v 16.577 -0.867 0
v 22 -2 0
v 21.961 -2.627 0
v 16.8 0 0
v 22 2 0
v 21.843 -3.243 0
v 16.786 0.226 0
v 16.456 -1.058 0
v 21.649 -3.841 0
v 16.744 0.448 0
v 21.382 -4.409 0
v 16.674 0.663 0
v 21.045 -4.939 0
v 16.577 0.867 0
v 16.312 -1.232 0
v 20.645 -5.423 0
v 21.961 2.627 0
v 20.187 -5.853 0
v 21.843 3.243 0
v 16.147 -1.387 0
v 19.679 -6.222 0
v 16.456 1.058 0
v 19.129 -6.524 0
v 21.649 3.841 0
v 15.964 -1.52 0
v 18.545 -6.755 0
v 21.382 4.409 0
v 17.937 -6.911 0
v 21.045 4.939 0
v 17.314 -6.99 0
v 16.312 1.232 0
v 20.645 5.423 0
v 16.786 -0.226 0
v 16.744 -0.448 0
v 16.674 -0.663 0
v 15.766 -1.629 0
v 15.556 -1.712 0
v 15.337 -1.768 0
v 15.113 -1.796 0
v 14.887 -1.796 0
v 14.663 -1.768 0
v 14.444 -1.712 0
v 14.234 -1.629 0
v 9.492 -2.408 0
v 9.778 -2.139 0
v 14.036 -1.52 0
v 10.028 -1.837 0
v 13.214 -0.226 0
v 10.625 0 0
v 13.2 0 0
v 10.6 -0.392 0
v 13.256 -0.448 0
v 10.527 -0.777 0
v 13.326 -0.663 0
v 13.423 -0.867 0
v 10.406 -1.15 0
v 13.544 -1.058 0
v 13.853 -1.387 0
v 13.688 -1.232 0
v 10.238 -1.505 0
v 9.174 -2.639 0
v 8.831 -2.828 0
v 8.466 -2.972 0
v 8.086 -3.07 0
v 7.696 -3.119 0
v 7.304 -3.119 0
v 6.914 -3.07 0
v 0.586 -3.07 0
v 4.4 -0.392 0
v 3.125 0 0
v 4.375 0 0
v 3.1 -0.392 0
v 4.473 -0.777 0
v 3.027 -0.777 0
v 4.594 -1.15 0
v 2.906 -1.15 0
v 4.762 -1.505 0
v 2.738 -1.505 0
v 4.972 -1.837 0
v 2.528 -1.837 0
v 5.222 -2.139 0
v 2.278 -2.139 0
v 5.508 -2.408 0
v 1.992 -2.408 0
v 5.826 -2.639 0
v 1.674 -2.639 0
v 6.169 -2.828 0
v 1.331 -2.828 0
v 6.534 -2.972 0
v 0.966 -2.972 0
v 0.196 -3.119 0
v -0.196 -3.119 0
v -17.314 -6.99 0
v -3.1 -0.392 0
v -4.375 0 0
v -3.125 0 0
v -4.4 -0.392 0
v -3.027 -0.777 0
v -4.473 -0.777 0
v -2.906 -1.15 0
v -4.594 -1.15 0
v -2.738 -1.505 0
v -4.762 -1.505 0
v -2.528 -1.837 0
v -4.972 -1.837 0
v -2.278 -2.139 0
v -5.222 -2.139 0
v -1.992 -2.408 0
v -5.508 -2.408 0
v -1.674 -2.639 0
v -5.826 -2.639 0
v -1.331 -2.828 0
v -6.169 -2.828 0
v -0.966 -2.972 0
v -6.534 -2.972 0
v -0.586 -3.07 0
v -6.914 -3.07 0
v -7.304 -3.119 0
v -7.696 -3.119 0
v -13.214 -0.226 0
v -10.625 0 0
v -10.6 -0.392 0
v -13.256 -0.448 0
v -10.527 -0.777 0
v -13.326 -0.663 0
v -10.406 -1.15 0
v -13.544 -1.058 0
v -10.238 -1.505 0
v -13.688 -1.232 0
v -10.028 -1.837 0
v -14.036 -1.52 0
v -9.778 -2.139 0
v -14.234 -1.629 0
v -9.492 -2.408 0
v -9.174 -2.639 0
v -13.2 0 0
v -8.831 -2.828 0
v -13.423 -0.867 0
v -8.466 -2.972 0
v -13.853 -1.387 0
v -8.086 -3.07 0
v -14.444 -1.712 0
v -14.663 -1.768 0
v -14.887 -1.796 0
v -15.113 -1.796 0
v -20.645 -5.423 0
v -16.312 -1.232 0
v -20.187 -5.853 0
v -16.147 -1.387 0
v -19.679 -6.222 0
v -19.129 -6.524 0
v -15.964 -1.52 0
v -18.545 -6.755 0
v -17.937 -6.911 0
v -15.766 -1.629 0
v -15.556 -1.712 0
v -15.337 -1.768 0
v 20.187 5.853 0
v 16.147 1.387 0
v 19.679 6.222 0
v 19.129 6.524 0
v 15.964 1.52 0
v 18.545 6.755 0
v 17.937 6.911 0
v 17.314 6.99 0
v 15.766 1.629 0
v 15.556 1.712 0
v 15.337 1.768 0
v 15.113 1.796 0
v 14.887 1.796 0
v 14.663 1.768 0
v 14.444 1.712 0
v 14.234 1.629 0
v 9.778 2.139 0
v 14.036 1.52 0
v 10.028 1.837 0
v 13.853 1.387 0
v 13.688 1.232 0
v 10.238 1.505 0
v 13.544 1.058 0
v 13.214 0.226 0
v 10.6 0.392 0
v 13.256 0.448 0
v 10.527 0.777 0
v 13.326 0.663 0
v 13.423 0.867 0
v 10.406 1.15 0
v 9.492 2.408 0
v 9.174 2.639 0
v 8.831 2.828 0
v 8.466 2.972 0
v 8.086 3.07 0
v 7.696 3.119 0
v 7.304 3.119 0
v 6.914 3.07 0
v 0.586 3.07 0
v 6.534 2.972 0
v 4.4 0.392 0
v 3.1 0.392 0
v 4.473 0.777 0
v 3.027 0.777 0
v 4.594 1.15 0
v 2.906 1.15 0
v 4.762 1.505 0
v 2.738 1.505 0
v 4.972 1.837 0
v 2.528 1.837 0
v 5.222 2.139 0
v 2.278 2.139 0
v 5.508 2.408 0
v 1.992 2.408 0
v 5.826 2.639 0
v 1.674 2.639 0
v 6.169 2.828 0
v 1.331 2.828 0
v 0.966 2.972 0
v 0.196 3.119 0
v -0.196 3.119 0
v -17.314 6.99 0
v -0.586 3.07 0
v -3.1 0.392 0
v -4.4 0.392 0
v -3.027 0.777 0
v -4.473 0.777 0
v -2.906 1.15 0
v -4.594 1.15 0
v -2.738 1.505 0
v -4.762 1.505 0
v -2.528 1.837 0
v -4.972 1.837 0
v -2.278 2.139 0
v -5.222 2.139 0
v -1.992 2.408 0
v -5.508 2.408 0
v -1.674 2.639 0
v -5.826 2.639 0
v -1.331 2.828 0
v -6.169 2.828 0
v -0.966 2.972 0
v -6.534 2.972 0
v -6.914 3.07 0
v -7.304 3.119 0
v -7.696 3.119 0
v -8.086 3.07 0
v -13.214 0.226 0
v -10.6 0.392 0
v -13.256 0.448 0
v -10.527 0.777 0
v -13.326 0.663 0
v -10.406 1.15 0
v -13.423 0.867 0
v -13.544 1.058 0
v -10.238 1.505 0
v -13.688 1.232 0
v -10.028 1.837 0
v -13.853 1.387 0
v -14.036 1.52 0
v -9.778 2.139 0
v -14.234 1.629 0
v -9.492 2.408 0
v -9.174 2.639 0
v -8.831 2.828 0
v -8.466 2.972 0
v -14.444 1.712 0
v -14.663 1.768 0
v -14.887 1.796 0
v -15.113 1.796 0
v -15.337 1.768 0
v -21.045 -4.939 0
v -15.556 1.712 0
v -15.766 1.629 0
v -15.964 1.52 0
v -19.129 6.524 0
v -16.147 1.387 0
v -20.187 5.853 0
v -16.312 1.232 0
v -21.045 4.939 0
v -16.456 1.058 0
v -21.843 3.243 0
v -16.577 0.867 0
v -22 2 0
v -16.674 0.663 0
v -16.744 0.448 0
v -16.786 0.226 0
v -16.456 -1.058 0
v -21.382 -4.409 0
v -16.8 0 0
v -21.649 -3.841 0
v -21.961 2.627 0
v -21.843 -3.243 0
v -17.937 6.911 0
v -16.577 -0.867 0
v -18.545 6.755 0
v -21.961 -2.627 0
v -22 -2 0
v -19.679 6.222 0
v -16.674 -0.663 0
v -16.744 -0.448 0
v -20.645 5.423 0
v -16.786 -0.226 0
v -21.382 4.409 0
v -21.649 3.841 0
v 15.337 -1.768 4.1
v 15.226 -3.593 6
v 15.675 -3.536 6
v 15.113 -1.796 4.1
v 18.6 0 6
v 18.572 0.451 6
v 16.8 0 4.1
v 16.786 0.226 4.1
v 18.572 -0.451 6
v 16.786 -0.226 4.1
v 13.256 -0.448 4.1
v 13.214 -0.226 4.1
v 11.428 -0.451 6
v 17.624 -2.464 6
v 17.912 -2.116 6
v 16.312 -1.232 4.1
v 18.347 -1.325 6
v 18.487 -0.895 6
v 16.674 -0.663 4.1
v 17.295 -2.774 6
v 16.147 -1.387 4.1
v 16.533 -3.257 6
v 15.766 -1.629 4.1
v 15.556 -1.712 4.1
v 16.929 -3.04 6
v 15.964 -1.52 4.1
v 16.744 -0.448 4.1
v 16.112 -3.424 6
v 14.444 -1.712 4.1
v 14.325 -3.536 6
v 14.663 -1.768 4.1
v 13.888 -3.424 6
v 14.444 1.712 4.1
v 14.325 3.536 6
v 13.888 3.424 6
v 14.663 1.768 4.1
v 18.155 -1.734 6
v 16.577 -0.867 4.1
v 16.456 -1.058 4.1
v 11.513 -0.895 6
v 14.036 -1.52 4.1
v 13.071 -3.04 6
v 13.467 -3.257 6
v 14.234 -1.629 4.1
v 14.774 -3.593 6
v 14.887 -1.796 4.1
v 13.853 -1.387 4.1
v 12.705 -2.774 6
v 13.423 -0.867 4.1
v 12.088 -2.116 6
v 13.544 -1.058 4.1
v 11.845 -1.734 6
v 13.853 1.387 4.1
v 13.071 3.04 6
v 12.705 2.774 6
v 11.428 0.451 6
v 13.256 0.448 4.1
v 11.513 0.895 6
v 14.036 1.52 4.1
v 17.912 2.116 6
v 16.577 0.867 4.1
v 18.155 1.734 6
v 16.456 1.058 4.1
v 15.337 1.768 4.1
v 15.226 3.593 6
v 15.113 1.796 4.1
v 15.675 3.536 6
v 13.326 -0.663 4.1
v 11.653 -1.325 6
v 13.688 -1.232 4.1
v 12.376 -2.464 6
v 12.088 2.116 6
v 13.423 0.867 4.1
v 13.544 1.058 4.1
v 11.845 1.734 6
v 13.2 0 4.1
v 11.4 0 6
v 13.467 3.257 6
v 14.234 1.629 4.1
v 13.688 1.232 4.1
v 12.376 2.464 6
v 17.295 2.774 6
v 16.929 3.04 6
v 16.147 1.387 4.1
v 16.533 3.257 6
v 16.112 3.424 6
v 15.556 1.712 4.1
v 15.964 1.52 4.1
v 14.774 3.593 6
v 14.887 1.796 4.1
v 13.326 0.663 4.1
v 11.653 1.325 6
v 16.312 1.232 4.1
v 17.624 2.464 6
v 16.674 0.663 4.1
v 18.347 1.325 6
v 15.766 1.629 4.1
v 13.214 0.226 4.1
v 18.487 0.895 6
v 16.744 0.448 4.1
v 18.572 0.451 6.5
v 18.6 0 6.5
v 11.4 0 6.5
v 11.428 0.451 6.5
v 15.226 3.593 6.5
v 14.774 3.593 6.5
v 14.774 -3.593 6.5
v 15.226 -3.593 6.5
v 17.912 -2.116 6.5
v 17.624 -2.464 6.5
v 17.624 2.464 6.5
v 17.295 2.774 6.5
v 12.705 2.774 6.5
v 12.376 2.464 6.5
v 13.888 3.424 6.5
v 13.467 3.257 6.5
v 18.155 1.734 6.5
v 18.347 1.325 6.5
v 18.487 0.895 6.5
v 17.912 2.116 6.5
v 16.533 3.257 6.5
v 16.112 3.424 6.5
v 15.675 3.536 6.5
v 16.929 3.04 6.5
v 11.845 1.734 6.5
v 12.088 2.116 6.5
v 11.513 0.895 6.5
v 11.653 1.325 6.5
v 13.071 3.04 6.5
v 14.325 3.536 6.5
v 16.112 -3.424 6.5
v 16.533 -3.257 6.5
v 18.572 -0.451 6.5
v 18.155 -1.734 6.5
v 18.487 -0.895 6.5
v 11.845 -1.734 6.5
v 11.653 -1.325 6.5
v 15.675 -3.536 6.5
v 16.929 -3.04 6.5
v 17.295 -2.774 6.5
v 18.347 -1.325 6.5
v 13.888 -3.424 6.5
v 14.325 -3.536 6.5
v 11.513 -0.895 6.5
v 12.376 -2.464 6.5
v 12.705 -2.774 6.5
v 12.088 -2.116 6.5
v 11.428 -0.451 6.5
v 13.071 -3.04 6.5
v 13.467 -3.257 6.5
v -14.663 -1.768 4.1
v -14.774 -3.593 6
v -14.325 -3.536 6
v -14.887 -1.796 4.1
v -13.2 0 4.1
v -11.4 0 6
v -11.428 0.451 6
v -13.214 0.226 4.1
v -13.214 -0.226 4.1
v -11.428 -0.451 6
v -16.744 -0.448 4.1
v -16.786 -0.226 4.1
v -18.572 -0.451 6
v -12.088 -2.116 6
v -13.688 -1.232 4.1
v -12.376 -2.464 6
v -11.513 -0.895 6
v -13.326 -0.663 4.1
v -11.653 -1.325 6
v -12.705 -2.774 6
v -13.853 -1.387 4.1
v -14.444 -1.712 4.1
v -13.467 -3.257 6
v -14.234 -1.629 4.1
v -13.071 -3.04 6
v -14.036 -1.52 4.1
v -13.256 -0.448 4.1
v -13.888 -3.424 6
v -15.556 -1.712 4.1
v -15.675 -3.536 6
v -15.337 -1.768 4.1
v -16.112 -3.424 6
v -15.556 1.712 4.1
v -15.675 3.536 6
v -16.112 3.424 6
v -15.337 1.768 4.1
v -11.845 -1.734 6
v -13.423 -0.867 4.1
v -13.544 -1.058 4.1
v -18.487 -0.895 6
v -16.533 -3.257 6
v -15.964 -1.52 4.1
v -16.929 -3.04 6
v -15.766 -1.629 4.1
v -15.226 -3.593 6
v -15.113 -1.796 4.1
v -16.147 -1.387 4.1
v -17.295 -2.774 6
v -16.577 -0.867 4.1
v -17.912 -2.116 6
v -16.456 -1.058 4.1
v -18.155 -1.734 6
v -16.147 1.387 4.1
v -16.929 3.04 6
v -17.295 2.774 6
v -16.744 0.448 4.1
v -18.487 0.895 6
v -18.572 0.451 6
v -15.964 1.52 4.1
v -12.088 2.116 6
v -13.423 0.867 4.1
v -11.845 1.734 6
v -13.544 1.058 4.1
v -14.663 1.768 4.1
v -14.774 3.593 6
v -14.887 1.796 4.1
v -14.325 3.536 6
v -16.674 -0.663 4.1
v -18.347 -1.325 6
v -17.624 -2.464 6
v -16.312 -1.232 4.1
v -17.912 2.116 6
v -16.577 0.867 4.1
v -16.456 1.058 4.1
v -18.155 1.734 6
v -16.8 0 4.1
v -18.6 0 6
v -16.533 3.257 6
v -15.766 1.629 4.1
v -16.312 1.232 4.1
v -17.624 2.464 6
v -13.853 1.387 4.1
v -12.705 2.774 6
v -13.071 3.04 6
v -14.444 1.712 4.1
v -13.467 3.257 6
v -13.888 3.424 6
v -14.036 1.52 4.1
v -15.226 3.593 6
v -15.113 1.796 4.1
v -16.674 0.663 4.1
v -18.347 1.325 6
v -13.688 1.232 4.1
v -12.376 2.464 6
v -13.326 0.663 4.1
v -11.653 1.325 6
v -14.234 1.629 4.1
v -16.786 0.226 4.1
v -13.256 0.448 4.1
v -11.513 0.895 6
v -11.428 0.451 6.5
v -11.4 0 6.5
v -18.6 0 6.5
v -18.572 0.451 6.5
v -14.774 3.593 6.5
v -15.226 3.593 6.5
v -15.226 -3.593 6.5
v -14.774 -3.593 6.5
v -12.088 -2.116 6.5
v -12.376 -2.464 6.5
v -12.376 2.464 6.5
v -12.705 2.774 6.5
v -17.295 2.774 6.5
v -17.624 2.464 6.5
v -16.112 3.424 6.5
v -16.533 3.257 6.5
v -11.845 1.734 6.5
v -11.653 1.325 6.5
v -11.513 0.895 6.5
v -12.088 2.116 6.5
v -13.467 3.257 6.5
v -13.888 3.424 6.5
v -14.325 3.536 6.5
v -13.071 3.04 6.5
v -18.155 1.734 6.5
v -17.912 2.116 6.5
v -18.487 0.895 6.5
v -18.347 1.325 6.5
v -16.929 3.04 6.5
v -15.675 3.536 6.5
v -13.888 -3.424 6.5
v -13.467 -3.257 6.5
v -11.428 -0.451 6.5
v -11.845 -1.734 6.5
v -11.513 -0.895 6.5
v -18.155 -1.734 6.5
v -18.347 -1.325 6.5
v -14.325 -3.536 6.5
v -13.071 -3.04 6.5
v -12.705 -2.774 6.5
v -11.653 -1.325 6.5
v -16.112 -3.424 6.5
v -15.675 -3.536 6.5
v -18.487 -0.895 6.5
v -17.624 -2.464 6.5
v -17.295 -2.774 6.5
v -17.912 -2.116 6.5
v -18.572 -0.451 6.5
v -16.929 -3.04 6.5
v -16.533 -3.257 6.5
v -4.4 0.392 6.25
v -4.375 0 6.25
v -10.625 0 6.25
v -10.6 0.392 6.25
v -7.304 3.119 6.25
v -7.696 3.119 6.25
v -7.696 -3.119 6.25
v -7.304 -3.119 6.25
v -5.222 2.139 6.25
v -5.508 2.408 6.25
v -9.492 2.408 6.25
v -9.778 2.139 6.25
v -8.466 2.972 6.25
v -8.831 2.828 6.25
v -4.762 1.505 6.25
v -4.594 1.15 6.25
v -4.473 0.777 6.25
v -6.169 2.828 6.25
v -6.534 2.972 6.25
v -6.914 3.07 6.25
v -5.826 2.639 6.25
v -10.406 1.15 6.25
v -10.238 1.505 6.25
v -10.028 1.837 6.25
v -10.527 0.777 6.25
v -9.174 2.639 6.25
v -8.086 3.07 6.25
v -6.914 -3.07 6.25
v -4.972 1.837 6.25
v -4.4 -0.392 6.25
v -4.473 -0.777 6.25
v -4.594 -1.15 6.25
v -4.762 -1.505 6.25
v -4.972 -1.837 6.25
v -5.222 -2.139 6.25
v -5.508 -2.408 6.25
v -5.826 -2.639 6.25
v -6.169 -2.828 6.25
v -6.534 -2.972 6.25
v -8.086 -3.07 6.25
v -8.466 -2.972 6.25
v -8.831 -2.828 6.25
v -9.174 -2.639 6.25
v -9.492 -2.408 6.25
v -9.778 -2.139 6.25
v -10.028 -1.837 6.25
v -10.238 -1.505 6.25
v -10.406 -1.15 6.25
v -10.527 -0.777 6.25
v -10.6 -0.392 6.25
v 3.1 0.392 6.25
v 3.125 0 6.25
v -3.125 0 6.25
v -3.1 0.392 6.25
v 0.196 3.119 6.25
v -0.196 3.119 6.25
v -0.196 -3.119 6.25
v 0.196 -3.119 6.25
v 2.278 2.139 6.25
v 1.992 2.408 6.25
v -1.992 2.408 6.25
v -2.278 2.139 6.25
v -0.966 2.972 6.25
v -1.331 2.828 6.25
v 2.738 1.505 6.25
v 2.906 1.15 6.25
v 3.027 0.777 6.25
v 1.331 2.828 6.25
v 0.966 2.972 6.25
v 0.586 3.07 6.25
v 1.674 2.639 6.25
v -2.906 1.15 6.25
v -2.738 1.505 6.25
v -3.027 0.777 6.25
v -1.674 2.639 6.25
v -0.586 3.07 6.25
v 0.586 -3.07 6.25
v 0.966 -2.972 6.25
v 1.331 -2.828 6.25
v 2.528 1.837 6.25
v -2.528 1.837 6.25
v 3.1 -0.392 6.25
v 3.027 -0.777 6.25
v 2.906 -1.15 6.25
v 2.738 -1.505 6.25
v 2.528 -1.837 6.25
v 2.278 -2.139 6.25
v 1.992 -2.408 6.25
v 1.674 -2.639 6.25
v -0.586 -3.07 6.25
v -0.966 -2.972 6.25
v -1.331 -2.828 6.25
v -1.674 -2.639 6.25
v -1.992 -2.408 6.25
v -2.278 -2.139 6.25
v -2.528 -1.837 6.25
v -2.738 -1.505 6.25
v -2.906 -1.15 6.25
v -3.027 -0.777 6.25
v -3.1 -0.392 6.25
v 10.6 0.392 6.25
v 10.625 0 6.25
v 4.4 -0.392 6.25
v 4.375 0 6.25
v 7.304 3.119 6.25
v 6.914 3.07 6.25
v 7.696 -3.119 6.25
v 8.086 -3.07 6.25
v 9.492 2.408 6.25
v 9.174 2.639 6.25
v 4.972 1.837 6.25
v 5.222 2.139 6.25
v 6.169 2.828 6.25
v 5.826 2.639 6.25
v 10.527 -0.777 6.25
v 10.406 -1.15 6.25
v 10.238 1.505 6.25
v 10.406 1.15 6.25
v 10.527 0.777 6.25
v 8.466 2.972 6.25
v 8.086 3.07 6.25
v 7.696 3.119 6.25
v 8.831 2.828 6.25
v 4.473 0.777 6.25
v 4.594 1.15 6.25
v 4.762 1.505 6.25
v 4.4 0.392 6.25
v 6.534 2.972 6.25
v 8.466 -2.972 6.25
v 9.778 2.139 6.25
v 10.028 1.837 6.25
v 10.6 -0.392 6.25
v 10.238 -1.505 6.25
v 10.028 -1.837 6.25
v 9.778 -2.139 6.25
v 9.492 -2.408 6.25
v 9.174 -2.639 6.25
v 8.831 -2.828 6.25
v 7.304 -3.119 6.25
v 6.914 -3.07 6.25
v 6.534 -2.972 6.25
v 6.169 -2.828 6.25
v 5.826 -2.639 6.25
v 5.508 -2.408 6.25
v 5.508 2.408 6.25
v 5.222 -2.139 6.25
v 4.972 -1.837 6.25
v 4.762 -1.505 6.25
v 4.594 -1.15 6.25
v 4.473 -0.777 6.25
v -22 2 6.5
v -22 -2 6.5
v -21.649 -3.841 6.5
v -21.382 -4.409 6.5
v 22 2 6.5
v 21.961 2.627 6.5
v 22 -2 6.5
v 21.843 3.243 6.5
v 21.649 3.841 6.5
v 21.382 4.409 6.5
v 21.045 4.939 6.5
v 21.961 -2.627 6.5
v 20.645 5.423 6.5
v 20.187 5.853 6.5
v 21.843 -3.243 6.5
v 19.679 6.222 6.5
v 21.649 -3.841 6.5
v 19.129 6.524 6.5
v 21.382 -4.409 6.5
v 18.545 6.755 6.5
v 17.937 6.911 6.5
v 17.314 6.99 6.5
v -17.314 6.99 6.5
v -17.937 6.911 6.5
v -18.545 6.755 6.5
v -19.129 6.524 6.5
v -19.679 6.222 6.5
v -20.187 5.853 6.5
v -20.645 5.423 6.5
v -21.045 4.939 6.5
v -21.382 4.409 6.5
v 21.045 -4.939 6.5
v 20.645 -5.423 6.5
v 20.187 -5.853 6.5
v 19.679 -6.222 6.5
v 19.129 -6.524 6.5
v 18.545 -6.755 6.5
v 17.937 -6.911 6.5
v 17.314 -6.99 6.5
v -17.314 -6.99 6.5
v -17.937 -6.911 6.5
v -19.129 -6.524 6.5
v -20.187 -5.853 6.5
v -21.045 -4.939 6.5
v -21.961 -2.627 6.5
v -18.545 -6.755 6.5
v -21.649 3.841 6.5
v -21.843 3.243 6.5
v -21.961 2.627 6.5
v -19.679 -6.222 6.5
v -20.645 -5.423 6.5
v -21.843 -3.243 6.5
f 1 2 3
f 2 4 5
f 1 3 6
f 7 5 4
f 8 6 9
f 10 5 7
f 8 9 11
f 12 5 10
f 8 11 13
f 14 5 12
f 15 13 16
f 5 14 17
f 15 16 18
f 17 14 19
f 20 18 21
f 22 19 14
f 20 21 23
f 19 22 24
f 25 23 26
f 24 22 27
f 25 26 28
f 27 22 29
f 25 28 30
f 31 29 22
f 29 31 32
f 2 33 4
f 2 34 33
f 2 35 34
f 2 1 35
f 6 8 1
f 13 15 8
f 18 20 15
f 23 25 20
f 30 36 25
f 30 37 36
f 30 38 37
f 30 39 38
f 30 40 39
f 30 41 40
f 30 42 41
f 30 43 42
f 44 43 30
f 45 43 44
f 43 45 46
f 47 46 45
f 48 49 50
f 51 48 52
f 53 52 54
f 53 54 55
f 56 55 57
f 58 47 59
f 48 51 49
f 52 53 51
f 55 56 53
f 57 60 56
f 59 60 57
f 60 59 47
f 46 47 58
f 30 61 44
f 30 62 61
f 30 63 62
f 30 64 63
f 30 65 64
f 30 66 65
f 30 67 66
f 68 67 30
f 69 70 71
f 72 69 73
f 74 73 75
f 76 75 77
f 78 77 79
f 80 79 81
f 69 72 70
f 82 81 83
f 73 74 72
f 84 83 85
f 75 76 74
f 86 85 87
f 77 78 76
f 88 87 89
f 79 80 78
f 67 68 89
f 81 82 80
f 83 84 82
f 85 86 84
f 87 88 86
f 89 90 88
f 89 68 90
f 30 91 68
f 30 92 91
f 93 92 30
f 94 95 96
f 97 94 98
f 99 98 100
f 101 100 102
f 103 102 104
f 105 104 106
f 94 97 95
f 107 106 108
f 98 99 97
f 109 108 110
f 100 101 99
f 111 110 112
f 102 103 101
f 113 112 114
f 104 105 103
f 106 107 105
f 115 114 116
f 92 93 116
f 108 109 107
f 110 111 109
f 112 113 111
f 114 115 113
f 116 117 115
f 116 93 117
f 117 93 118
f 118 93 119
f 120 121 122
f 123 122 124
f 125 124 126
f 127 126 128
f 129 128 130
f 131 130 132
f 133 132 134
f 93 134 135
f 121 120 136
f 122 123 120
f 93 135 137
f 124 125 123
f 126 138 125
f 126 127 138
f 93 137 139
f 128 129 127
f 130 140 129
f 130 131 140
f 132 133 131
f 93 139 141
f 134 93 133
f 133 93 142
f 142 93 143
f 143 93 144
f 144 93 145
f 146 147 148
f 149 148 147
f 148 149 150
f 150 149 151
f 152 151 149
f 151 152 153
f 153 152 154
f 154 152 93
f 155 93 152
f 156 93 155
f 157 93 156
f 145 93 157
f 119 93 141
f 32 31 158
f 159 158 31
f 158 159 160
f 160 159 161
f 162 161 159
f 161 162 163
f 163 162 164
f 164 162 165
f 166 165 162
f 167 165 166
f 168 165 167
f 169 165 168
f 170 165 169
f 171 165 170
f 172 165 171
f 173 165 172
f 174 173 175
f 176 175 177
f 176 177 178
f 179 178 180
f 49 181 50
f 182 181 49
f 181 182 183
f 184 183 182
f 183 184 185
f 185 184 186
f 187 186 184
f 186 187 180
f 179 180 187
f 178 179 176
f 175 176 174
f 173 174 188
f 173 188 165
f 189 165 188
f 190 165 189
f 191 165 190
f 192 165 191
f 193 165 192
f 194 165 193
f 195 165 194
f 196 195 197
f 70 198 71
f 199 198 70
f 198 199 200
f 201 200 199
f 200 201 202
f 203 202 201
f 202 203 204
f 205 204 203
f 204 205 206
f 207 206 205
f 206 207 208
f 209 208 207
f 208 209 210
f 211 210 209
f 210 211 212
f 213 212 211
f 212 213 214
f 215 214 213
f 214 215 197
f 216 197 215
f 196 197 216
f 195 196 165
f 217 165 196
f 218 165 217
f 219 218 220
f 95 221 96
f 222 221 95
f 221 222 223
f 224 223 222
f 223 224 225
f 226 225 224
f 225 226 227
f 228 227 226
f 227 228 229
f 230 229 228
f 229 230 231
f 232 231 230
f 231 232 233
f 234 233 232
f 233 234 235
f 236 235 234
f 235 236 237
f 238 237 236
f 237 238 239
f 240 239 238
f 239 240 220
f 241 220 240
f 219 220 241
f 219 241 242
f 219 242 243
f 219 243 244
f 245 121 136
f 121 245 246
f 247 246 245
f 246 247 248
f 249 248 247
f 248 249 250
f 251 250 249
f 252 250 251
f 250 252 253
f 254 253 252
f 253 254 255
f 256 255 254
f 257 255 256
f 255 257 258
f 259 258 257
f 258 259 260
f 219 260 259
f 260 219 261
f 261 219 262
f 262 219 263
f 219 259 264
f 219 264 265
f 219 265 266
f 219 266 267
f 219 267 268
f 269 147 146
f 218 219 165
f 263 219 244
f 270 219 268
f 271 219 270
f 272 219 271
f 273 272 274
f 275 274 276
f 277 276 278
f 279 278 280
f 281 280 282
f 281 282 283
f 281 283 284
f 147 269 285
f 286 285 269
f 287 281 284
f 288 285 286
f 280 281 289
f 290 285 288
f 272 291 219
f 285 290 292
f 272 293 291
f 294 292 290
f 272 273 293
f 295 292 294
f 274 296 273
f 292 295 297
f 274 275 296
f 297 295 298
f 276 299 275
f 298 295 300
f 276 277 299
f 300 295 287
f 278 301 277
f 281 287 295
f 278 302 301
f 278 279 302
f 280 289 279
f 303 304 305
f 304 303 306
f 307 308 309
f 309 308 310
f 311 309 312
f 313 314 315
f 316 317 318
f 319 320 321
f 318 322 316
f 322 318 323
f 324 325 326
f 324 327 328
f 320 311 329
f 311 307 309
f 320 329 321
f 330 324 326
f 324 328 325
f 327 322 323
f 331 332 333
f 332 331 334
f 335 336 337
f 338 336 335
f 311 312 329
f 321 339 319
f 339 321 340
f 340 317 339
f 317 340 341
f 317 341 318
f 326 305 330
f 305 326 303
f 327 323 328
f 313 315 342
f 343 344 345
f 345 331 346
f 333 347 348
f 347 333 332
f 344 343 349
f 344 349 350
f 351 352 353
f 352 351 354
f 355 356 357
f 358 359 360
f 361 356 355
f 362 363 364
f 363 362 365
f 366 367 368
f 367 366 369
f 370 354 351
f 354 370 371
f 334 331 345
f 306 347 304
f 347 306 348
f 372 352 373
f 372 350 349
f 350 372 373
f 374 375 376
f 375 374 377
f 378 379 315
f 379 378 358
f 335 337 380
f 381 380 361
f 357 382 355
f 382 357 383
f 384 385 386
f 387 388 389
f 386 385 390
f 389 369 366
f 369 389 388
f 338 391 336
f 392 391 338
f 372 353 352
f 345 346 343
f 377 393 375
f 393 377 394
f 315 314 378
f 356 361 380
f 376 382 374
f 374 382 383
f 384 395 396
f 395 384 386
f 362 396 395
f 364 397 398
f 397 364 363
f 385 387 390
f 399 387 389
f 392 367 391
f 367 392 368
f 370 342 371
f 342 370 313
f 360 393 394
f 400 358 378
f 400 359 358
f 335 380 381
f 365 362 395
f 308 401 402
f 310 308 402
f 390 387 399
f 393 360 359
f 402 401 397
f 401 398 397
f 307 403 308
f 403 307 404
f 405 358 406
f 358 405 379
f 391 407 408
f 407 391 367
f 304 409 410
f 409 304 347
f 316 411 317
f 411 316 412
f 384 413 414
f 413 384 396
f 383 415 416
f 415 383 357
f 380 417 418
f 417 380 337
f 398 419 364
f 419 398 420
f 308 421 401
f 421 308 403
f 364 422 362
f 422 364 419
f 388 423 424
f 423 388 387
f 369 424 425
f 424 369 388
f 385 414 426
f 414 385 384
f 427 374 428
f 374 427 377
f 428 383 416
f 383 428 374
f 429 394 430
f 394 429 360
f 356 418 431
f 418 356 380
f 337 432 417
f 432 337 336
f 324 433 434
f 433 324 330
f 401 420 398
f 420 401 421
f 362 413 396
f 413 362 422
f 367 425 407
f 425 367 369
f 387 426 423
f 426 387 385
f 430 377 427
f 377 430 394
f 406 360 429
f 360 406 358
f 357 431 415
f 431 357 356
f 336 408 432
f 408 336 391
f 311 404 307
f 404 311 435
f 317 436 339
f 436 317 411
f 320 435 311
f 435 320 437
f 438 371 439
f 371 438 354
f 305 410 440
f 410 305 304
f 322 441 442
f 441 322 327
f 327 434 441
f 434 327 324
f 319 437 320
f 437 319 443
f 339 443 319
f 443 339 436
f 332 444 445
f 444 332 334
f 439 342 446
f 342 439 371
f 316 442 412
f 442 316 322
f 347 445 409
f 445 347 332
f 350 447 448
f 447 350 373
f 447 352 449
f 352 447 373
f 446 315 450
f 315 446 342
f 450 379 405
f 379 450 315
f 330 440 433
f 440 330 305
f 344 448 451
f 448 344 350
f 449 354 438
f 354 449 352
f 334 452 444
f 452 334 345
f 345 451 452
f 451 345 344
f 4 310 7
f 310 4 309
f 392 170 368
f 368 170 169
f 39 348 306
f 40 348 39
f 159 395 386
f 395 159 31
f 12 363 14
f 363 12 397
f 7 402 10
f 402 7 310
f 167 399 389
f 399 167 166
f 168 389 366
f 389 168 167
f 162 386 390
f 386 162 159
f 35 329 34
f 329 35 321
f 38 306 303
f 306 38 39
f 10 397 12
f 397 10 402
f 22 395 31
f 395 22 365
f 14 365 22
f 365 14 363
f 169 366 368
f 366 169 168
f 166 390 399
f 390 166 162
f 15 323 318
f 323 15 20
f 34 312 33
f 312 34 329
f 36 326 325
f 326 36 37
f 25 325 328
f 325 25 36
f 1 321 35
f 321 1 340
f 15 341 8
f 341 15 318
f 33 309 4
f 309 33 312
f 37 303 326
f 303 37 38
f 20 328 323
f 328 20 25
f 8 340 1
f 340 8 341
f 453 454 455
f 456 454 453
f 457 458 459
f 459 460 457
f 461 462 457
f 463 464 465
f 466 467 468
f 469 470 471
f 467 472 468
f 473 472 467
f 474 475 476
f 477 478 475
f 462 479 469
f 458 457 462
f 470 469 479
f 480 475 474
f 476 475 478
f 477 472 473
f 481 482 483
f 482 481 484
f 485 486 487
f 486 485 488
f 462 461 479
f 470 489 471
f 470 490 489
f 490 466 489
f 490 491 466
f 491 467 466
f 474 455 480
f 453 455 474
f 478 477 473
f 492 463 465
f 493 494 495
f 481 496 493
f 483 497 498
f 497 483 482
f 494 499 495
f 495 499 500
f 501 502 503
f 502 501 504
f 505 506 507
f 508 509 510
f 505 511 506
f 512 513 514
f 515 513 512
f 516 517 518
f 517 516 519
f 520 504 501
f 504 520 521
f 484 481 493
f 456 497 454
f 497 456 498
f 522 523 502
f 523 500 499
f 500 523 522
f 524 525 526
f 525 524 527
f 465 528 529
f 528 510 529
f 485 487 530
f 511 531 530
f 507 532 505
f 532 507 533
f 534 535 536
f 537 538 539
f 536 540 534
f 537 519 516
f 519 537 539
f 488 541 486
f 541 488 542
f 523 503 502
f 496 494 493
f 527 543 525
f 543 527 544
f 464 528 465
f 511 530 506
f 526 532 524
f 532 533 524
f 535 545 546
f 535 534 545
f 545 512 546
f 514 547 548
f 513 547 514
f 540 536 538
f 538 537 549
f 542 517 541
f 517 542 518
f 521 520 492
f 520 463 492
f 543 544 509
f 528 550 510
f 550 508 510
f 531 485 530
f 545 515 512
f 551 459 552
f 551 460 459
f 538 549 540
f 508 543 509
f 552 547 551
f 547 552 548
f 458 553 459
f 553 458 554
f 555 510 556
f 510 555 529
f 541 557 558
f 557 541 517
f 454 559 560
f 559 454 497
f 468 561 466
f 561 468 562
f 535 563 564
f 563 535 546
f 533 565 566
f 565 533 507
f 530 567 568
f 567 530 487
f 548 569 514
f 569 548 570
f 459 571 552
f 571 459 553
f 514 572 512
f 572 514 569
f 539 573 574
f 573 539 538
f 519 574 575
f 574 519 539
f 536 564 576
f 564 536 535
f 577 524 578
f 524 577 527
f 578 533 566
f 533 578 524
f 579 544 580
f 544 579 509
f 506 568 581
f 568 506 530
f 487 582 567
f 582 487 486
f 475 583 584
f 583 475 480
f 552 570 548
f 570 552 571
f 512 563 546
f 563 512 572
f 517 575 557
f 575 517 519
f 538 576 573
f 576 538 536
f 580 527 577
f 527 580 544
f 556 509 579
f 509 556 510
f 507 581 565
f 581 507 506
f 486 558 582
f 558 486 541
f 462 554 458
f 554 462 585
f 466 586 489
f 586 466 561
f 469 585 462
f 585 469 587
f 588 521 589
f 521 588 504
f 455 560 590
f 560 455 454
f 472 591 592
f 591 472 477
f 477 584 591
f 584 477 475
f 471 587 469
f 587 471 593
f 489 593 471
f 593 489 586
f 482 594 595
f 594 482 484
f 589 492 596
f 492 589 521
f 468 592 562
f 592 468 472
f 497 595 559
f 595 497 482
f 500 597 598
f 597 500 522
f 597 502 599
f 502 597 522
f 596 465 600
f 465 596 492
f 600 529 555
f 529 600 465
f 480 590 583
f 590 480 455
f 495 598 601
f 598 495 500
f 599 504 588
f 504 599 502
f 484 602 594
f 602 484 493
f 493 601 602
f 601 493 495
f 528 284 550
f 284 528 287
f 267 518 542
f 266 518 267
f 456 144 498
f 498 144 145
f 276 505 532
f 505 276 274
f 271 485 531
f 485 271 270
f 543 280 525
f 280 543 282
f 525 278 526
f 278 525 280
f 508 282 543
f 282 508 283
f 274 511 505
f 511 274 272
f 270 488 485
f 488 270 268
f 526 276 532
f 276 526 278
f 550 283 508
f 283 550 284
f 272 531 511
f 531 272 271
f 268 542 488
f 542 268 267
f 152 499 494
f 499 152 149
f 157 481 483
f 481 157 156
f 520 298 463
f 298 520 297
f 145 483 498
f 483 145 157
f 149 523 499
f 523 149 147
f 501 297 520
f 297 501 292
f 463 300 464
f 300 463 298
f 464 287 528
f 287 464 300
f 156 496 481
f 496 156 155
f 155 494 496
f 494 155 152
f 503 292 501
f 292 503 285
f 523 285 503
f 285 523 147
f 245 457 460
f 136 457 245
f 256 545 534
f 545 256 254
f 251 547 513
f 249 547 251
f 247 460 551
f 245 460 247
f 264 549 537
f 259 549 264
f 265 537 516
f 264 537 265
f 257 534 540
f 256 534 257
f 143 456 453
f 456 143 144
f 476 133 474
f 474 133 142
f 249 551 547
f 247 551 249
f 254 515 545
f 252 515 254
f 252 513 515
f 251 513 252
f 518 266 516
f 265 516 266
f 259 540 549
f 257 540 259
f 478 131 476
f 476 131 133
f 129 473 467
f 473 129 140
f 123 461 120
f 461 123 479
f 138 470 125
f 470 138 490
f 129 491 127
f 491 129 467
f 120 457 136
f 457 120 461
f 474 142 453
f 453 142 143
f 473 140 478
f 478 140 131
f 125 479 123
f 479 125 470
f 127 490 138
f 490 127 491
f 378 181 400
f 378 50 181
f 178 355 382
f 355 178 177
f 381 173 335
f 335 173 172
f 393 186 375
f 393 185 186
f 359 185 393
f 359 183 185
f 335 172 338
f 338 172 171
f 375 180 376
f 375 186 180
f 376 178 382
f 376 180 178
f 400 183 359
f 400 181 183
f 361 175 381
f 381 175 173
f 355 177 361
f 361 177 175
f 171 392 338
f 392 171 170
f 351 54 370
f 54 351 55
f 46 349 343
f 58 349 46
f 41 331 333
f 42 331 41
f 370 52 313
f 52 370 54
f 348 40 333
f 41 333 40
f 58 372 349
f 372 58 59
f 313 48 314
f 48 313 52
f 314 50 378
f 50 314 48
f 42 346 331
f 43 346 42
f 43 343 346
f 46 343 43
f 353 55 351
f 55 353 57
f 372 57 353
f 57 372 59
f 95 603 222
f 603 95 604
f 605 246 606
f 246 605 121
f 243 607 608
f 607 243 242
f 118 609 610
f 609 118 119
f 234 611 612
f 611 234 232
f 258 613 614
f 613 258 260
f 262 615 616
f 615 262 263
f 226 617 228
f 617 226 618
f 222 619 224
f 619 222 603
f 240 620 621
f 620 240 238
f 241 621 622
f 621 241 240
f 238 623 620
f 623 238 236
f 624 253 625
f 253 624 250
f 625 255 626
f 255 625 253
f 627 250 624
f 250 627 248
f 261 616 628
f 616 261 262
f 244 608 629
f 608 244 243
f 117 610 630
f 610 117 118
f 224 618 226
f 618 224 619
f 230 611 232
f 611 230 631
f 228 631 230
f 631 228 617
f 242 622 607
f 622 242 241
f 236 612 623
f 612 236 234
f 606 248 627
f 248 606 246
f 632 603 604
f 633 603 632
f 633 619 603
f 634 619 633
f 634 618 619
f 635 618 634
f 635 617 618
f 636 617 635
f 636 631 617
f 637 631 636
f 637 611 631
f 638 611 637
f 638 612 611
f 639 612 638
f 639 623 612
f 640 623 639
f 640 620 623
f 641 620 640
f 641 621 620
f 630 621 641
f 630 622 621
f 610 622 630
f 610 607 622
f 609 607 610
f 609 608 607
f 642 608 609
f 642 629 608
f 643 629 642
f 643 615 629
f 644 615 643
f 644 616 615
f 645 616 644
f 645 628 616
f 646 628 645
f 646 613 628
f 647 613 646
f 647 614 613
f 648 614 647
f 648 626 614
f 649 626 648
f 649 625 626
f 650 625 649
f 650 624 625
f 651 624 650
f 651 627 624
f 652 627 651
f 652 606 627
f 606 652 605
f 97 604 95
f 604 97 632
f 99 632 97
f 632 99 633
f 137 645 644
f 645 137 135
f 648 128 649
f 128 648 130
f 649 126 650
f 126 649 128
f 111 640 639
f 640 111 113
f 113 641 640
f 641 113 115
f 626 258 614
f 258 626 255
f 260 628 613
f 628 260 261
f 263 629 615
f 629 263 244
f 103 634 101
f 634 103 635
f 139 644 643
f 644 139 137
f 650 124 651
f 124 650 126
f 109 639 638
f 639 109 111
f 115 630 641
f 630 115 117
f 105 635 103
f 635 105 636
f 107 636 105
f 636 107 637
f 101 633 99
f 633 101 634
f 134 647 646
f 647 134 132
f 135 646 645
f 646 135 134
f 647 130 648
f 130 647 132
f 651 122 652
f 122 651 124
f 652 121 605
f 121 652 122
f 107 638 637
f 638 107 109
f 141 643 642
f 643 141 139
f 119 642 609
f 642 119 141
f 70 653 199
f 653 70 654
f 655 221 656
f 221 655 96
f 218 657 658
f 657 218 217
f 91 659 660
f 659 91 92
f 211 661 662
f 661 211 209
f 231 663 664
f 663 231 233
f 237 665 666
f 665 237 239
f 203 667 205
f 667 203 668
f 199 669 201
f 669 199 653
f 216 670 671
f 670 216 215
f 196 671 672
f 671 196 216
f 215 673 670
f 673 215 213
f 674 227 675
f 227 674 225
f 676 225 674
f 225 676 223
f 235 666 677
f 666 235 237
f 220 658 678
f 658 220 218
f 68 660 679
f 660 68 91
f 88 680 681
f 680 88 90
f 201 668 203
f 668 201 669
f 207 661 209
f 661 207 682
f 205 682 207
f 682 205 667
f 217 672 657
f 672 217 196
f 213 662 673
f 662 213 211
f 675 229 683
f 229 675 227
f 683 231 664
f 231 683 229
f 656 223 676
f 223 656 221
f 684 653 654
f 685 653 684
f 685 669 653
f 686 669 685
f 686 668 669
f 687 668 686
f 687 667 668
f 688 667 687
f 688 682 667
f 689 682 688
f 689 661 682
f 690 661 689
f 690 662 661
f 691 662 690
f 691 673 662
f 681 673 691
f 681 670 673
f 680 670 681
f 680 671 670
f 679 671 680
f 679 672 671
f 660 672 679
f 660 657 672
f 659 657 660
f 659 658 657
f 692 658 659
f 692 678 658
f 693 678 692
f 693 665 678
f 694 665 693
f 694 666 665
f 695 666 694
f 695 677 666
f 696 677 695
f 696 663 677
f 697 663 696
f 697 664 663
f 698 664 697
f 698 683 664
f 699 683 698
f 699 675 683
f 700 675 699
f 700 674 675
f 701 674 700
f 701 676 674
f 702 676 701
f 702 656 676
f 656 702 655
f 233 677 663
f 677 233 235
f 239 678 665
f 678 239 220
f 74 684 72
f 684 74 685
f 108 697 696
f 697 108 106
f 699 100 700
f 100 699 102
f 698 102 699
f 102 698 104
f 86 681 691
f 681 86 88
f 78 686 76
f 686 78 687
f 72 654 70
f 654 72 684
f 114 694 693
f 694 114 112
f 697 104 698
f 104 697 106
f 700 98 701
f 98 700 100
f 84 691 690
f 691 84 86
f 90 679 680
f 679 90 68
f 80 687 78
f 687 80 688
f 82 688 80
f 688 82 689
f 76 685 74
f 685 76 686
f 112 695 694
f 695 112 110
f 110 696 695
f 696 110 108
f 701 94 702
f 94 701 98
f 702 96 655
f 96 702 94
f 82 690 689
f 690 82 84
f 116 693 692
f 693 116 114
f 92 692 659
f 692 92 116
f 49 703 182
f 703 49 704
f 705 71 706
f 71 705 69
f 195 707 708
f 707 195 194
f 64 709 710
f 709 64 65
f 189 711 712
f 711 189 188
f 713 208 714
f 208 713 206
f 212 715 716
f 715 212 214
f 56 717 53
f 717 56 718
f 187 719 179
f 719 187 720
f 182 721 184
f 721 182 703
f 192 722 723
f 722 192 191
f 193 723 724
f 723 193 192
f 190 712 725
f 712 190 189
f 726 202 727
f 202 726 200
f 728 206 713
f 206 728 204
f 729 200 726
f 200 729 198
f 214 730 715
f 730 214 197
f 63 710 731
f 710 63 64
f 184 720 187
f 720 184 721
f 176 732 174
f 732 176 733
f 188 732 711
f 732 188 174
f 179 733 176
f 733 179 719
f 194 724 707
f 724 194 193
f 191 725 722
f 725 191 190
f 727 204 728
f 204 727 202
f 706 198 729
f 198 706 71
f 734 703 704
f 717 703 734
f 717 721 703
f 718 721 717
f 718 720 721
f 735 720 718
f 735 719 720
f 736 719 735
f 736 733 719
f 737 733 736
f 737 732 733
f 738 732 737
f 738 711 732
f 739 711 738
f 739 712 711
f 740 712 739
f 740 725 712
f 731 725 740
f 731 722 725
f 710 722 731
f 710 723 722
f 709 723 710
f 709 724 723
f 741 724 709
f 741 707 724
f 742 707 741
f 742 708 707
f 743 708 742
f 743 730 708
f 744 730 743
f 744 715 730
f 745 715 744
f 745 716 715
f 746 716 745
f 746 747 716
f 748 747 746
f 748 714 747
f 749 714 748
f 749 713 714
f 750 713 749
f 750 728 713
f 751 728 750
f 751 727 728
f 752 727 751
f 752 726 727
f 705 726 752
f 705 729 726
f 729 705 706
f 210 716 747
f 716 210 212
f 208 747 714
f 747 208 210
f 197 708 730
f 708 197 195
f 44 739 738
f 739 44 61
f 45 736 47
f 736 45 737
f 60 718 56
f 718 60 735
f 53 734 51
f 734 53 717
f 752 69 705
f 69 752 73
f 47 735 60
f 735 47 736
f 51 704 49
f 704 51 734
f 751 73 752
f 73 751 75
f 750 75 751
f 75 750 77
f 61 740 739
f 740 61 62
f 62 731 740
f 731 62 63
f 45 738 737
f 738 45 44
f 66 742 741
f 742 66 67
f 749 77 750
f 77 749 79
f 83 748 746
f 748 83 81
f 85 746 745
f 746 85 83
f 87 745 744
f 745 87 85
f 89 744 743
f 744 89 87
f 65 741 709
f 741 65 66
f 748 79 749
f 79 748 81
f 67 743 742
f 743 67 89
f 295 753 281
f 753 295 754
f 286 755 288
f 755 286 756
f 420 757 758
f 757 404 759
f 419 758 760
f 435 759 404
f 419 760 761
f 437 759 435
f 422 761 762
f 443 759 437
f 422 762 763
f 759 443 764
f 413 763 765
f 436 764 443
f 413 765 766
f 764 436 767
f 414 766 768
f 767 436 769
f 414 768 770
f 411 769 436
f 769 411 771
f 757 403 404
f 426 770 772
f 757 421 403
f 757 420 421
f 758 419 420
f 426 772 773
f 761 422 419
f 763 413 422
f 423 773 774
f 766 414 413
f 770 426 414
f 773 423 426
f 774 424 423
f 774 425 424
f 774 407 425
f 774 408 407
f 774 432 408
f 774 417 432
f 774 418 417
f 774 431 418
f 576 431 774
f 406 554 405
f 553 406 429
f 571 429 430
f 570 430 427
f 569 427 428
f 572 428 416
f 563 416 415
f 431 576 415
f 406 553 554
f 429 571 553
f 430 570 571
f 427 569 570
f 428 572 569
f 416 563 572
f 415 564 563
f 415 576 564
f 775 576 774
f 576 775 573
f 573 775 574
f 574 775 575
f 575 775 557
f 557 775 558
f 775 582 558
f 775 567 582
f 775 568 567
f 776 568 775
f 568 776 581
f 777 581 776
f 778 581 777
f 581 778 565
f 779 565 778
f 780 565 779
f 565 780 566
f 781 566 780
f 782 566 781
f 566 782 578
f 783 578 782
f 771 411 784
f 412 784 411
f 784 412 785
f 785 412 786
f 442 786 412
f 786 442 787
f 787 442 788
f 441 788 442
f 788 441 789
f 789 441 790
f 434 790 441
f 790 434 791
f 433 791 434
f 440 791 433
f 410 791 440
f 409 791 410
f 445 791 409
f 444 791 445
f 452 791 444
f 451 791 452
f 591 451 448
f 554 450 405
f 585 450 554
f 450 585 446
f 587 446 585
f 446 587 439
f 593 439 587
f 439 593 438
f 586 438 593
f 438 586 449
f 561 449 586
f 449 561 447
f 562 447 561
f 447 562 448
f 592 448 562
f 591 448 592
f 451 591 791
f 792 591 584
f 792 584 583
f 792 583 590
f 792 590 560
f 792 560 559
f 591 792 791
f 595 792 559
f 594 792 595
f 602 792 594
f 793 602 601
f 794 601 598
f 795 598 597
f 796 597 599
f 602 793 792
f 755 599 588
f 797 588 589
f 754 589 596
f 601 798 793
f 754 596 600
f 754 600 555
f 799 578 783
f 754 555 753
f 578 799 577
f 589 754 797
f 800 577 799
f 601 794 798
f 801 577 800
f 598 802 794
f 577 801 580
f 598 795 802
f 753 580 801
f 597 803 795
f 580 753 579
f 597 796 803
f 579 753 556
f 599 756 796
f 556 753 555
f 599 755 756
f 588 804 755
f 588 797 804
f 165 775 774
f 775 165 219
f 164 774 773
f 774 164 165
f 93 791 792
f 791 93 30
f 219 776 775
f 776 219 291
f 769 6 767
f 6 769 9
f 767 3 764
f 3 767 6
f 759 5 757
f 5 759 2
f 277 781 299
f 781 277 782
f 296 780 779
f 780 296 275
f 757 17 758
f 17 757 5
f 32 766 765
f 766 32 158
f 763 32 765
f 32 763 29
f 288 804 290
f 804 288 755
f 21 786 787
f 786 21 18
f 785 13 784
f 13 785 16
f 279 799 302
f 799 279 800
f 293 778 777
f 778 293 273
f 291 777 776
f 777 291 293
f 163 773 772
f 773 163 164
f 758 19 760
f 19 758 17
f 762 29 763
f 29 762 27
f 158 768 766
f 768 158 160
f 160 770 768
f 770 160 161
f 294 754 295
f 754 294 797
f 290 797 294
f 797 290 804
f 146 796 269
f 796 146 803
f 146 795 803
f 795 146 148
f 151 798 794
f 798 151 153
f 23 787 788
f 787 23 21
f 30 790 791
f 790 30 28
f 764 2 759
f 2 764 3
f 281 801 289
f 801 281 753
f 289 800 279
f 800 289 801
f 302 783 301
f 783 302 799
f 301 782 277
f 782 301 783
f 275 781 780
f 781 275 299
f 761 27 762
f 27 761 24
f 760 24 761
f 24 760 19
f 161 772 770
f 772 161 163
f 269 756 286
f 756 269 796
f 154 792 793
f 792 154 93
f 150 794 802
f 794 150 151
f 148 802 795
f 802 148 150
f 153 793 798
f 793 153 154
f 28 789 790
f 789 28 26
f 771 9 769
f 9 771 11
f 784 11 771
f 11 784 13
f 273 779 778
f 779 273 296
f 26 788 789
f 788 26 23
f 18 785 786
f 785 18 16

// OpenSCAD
$fn = 50;


difference() {
	union() {
		hull() {
			translate(v = [-17.0000000000, 2.0000000000, 0]) {
				cylinder(h = 6.5000000000, r = 5);
			}
			translate(v = [17.0000000000, 2.0000000000, 0]) {
				cylinder(h = 6.5000000000, r = 5);
			}
			translate(v = [-17.0000000000, -2.0000000000, 0]) {
				cylinder(h = 6.5000000000, r = 5);
			}
			translate(v = [17.0000000000, -2.0000000000, 0]) {
				cylinder(h = 6.5000000000, r = 5);
			}
		}
	}
	union() {
		translate(v = [15.0000000000, 0, 6.0000000000]) {
			rotate(a = [0, 0, 0]) {
				difference() {
					union() {
						translate(v = [0, 0, -6.0000000000]) {
							cylinder(h = 6.0000000000, r = 1.5000000000);
						}
						translate(v = [0, 0, -1.9000000000]) {
							cylinder(h = 1.9000000000, r1 = 1.8000000000, r2 = 3.6000000000);
						}
						cylinder(h = 250, r = 3.6000000000);
						translate(v = [0, 0, -6.0000000000]) {
							cylinder(h = 6.0000000000, r = 1.8000000000);
						}
						translate(v = [0, 0, -6.0000000000]) {
							cylinder(h = 6.0000000000, r = 1.5000000000);
						}
					}
					union();
				}
			}
		}
		translate(v = [-15.0000000000, 0, 6.0000000000]) {
			rotate(a = [0, 0, 0]) {
				difference() {
					union() {
						translate(v = [0, 0, -6.0000000000]) {
							cylinder(h = 6.0000000000, r = 1.5000000000);
						}
						translate(v = [0, 0, -1.9000000000]) {
							cylinder(h = 1.9000000000, r1 = 1.8000000000, r2 = 3.6000000000);
						}
						cylinder(h = 250, r = 3.6000000000);
						translate(v = [0, 0, -6.0000000000]) {
							cylinder(h = 6.0000000000, r = 1.8000000000);
						}
						translate(v = [0, 0, -6.0000000000]) {
							cylinder(h = 6.0000000000, r = 1.5000000000);
						}
					}
					union();
				}
			}
		}
		translate(v = [-15.0000000000, 0.0000000000, 0]) {
			cylinder(h = 6.5000000000, r = 1.8000000000);
		}
		translate(v = [15.0000000000, 0.0000000000, 0]) {
			cylinder(h = 6.5000000000, r = 1.8000000000);
		}
		translate(v = [-15.0000000000, 0.0000000000, 0]) {
			cylinder(h = 6.5000000000, r = 1.8000000000);
		}
		translate(v = [15.0000000000, 0.0000000000, 0]) {
			cylinder(h = 6.5000000000, r = 1.8000000000);
		}
		translate(v = [-15.0000000000, 0.0000000000, 0]) {
			cylinder(h = 6.5000000000, r = 1.8000000000);
		}
		translate(v = [15.0000000000, 0.0000000000, 0]) {
			cylinder(h = 6.5000000000, r = 1.8000000000);
		}
		translate(v = [-15.0000000000, 0.0000000000, 0]) {
			cylinder(h = 6.5000000000, r = 1.8000000000);
		}
		translate(v = [15.0000000000, 0.0000000000, 0]) {
			cylinder(h = 6.5000000000, r = 1.8000000000);
		}
		#translate(v = [-7.5000000000, 0, 0.0000000000]) {
			cylinder(h = 6.2500000000, r = 3.1250000000);
		}
		#cylinder(h = 6.2500000000, r = 3.1250000000);
		#translate(v = [7.5000000000, 0, 0.0000000000]) {
			cylinder(h = 6.2500000000, r = 3.1250000000);
		}
	}
}
